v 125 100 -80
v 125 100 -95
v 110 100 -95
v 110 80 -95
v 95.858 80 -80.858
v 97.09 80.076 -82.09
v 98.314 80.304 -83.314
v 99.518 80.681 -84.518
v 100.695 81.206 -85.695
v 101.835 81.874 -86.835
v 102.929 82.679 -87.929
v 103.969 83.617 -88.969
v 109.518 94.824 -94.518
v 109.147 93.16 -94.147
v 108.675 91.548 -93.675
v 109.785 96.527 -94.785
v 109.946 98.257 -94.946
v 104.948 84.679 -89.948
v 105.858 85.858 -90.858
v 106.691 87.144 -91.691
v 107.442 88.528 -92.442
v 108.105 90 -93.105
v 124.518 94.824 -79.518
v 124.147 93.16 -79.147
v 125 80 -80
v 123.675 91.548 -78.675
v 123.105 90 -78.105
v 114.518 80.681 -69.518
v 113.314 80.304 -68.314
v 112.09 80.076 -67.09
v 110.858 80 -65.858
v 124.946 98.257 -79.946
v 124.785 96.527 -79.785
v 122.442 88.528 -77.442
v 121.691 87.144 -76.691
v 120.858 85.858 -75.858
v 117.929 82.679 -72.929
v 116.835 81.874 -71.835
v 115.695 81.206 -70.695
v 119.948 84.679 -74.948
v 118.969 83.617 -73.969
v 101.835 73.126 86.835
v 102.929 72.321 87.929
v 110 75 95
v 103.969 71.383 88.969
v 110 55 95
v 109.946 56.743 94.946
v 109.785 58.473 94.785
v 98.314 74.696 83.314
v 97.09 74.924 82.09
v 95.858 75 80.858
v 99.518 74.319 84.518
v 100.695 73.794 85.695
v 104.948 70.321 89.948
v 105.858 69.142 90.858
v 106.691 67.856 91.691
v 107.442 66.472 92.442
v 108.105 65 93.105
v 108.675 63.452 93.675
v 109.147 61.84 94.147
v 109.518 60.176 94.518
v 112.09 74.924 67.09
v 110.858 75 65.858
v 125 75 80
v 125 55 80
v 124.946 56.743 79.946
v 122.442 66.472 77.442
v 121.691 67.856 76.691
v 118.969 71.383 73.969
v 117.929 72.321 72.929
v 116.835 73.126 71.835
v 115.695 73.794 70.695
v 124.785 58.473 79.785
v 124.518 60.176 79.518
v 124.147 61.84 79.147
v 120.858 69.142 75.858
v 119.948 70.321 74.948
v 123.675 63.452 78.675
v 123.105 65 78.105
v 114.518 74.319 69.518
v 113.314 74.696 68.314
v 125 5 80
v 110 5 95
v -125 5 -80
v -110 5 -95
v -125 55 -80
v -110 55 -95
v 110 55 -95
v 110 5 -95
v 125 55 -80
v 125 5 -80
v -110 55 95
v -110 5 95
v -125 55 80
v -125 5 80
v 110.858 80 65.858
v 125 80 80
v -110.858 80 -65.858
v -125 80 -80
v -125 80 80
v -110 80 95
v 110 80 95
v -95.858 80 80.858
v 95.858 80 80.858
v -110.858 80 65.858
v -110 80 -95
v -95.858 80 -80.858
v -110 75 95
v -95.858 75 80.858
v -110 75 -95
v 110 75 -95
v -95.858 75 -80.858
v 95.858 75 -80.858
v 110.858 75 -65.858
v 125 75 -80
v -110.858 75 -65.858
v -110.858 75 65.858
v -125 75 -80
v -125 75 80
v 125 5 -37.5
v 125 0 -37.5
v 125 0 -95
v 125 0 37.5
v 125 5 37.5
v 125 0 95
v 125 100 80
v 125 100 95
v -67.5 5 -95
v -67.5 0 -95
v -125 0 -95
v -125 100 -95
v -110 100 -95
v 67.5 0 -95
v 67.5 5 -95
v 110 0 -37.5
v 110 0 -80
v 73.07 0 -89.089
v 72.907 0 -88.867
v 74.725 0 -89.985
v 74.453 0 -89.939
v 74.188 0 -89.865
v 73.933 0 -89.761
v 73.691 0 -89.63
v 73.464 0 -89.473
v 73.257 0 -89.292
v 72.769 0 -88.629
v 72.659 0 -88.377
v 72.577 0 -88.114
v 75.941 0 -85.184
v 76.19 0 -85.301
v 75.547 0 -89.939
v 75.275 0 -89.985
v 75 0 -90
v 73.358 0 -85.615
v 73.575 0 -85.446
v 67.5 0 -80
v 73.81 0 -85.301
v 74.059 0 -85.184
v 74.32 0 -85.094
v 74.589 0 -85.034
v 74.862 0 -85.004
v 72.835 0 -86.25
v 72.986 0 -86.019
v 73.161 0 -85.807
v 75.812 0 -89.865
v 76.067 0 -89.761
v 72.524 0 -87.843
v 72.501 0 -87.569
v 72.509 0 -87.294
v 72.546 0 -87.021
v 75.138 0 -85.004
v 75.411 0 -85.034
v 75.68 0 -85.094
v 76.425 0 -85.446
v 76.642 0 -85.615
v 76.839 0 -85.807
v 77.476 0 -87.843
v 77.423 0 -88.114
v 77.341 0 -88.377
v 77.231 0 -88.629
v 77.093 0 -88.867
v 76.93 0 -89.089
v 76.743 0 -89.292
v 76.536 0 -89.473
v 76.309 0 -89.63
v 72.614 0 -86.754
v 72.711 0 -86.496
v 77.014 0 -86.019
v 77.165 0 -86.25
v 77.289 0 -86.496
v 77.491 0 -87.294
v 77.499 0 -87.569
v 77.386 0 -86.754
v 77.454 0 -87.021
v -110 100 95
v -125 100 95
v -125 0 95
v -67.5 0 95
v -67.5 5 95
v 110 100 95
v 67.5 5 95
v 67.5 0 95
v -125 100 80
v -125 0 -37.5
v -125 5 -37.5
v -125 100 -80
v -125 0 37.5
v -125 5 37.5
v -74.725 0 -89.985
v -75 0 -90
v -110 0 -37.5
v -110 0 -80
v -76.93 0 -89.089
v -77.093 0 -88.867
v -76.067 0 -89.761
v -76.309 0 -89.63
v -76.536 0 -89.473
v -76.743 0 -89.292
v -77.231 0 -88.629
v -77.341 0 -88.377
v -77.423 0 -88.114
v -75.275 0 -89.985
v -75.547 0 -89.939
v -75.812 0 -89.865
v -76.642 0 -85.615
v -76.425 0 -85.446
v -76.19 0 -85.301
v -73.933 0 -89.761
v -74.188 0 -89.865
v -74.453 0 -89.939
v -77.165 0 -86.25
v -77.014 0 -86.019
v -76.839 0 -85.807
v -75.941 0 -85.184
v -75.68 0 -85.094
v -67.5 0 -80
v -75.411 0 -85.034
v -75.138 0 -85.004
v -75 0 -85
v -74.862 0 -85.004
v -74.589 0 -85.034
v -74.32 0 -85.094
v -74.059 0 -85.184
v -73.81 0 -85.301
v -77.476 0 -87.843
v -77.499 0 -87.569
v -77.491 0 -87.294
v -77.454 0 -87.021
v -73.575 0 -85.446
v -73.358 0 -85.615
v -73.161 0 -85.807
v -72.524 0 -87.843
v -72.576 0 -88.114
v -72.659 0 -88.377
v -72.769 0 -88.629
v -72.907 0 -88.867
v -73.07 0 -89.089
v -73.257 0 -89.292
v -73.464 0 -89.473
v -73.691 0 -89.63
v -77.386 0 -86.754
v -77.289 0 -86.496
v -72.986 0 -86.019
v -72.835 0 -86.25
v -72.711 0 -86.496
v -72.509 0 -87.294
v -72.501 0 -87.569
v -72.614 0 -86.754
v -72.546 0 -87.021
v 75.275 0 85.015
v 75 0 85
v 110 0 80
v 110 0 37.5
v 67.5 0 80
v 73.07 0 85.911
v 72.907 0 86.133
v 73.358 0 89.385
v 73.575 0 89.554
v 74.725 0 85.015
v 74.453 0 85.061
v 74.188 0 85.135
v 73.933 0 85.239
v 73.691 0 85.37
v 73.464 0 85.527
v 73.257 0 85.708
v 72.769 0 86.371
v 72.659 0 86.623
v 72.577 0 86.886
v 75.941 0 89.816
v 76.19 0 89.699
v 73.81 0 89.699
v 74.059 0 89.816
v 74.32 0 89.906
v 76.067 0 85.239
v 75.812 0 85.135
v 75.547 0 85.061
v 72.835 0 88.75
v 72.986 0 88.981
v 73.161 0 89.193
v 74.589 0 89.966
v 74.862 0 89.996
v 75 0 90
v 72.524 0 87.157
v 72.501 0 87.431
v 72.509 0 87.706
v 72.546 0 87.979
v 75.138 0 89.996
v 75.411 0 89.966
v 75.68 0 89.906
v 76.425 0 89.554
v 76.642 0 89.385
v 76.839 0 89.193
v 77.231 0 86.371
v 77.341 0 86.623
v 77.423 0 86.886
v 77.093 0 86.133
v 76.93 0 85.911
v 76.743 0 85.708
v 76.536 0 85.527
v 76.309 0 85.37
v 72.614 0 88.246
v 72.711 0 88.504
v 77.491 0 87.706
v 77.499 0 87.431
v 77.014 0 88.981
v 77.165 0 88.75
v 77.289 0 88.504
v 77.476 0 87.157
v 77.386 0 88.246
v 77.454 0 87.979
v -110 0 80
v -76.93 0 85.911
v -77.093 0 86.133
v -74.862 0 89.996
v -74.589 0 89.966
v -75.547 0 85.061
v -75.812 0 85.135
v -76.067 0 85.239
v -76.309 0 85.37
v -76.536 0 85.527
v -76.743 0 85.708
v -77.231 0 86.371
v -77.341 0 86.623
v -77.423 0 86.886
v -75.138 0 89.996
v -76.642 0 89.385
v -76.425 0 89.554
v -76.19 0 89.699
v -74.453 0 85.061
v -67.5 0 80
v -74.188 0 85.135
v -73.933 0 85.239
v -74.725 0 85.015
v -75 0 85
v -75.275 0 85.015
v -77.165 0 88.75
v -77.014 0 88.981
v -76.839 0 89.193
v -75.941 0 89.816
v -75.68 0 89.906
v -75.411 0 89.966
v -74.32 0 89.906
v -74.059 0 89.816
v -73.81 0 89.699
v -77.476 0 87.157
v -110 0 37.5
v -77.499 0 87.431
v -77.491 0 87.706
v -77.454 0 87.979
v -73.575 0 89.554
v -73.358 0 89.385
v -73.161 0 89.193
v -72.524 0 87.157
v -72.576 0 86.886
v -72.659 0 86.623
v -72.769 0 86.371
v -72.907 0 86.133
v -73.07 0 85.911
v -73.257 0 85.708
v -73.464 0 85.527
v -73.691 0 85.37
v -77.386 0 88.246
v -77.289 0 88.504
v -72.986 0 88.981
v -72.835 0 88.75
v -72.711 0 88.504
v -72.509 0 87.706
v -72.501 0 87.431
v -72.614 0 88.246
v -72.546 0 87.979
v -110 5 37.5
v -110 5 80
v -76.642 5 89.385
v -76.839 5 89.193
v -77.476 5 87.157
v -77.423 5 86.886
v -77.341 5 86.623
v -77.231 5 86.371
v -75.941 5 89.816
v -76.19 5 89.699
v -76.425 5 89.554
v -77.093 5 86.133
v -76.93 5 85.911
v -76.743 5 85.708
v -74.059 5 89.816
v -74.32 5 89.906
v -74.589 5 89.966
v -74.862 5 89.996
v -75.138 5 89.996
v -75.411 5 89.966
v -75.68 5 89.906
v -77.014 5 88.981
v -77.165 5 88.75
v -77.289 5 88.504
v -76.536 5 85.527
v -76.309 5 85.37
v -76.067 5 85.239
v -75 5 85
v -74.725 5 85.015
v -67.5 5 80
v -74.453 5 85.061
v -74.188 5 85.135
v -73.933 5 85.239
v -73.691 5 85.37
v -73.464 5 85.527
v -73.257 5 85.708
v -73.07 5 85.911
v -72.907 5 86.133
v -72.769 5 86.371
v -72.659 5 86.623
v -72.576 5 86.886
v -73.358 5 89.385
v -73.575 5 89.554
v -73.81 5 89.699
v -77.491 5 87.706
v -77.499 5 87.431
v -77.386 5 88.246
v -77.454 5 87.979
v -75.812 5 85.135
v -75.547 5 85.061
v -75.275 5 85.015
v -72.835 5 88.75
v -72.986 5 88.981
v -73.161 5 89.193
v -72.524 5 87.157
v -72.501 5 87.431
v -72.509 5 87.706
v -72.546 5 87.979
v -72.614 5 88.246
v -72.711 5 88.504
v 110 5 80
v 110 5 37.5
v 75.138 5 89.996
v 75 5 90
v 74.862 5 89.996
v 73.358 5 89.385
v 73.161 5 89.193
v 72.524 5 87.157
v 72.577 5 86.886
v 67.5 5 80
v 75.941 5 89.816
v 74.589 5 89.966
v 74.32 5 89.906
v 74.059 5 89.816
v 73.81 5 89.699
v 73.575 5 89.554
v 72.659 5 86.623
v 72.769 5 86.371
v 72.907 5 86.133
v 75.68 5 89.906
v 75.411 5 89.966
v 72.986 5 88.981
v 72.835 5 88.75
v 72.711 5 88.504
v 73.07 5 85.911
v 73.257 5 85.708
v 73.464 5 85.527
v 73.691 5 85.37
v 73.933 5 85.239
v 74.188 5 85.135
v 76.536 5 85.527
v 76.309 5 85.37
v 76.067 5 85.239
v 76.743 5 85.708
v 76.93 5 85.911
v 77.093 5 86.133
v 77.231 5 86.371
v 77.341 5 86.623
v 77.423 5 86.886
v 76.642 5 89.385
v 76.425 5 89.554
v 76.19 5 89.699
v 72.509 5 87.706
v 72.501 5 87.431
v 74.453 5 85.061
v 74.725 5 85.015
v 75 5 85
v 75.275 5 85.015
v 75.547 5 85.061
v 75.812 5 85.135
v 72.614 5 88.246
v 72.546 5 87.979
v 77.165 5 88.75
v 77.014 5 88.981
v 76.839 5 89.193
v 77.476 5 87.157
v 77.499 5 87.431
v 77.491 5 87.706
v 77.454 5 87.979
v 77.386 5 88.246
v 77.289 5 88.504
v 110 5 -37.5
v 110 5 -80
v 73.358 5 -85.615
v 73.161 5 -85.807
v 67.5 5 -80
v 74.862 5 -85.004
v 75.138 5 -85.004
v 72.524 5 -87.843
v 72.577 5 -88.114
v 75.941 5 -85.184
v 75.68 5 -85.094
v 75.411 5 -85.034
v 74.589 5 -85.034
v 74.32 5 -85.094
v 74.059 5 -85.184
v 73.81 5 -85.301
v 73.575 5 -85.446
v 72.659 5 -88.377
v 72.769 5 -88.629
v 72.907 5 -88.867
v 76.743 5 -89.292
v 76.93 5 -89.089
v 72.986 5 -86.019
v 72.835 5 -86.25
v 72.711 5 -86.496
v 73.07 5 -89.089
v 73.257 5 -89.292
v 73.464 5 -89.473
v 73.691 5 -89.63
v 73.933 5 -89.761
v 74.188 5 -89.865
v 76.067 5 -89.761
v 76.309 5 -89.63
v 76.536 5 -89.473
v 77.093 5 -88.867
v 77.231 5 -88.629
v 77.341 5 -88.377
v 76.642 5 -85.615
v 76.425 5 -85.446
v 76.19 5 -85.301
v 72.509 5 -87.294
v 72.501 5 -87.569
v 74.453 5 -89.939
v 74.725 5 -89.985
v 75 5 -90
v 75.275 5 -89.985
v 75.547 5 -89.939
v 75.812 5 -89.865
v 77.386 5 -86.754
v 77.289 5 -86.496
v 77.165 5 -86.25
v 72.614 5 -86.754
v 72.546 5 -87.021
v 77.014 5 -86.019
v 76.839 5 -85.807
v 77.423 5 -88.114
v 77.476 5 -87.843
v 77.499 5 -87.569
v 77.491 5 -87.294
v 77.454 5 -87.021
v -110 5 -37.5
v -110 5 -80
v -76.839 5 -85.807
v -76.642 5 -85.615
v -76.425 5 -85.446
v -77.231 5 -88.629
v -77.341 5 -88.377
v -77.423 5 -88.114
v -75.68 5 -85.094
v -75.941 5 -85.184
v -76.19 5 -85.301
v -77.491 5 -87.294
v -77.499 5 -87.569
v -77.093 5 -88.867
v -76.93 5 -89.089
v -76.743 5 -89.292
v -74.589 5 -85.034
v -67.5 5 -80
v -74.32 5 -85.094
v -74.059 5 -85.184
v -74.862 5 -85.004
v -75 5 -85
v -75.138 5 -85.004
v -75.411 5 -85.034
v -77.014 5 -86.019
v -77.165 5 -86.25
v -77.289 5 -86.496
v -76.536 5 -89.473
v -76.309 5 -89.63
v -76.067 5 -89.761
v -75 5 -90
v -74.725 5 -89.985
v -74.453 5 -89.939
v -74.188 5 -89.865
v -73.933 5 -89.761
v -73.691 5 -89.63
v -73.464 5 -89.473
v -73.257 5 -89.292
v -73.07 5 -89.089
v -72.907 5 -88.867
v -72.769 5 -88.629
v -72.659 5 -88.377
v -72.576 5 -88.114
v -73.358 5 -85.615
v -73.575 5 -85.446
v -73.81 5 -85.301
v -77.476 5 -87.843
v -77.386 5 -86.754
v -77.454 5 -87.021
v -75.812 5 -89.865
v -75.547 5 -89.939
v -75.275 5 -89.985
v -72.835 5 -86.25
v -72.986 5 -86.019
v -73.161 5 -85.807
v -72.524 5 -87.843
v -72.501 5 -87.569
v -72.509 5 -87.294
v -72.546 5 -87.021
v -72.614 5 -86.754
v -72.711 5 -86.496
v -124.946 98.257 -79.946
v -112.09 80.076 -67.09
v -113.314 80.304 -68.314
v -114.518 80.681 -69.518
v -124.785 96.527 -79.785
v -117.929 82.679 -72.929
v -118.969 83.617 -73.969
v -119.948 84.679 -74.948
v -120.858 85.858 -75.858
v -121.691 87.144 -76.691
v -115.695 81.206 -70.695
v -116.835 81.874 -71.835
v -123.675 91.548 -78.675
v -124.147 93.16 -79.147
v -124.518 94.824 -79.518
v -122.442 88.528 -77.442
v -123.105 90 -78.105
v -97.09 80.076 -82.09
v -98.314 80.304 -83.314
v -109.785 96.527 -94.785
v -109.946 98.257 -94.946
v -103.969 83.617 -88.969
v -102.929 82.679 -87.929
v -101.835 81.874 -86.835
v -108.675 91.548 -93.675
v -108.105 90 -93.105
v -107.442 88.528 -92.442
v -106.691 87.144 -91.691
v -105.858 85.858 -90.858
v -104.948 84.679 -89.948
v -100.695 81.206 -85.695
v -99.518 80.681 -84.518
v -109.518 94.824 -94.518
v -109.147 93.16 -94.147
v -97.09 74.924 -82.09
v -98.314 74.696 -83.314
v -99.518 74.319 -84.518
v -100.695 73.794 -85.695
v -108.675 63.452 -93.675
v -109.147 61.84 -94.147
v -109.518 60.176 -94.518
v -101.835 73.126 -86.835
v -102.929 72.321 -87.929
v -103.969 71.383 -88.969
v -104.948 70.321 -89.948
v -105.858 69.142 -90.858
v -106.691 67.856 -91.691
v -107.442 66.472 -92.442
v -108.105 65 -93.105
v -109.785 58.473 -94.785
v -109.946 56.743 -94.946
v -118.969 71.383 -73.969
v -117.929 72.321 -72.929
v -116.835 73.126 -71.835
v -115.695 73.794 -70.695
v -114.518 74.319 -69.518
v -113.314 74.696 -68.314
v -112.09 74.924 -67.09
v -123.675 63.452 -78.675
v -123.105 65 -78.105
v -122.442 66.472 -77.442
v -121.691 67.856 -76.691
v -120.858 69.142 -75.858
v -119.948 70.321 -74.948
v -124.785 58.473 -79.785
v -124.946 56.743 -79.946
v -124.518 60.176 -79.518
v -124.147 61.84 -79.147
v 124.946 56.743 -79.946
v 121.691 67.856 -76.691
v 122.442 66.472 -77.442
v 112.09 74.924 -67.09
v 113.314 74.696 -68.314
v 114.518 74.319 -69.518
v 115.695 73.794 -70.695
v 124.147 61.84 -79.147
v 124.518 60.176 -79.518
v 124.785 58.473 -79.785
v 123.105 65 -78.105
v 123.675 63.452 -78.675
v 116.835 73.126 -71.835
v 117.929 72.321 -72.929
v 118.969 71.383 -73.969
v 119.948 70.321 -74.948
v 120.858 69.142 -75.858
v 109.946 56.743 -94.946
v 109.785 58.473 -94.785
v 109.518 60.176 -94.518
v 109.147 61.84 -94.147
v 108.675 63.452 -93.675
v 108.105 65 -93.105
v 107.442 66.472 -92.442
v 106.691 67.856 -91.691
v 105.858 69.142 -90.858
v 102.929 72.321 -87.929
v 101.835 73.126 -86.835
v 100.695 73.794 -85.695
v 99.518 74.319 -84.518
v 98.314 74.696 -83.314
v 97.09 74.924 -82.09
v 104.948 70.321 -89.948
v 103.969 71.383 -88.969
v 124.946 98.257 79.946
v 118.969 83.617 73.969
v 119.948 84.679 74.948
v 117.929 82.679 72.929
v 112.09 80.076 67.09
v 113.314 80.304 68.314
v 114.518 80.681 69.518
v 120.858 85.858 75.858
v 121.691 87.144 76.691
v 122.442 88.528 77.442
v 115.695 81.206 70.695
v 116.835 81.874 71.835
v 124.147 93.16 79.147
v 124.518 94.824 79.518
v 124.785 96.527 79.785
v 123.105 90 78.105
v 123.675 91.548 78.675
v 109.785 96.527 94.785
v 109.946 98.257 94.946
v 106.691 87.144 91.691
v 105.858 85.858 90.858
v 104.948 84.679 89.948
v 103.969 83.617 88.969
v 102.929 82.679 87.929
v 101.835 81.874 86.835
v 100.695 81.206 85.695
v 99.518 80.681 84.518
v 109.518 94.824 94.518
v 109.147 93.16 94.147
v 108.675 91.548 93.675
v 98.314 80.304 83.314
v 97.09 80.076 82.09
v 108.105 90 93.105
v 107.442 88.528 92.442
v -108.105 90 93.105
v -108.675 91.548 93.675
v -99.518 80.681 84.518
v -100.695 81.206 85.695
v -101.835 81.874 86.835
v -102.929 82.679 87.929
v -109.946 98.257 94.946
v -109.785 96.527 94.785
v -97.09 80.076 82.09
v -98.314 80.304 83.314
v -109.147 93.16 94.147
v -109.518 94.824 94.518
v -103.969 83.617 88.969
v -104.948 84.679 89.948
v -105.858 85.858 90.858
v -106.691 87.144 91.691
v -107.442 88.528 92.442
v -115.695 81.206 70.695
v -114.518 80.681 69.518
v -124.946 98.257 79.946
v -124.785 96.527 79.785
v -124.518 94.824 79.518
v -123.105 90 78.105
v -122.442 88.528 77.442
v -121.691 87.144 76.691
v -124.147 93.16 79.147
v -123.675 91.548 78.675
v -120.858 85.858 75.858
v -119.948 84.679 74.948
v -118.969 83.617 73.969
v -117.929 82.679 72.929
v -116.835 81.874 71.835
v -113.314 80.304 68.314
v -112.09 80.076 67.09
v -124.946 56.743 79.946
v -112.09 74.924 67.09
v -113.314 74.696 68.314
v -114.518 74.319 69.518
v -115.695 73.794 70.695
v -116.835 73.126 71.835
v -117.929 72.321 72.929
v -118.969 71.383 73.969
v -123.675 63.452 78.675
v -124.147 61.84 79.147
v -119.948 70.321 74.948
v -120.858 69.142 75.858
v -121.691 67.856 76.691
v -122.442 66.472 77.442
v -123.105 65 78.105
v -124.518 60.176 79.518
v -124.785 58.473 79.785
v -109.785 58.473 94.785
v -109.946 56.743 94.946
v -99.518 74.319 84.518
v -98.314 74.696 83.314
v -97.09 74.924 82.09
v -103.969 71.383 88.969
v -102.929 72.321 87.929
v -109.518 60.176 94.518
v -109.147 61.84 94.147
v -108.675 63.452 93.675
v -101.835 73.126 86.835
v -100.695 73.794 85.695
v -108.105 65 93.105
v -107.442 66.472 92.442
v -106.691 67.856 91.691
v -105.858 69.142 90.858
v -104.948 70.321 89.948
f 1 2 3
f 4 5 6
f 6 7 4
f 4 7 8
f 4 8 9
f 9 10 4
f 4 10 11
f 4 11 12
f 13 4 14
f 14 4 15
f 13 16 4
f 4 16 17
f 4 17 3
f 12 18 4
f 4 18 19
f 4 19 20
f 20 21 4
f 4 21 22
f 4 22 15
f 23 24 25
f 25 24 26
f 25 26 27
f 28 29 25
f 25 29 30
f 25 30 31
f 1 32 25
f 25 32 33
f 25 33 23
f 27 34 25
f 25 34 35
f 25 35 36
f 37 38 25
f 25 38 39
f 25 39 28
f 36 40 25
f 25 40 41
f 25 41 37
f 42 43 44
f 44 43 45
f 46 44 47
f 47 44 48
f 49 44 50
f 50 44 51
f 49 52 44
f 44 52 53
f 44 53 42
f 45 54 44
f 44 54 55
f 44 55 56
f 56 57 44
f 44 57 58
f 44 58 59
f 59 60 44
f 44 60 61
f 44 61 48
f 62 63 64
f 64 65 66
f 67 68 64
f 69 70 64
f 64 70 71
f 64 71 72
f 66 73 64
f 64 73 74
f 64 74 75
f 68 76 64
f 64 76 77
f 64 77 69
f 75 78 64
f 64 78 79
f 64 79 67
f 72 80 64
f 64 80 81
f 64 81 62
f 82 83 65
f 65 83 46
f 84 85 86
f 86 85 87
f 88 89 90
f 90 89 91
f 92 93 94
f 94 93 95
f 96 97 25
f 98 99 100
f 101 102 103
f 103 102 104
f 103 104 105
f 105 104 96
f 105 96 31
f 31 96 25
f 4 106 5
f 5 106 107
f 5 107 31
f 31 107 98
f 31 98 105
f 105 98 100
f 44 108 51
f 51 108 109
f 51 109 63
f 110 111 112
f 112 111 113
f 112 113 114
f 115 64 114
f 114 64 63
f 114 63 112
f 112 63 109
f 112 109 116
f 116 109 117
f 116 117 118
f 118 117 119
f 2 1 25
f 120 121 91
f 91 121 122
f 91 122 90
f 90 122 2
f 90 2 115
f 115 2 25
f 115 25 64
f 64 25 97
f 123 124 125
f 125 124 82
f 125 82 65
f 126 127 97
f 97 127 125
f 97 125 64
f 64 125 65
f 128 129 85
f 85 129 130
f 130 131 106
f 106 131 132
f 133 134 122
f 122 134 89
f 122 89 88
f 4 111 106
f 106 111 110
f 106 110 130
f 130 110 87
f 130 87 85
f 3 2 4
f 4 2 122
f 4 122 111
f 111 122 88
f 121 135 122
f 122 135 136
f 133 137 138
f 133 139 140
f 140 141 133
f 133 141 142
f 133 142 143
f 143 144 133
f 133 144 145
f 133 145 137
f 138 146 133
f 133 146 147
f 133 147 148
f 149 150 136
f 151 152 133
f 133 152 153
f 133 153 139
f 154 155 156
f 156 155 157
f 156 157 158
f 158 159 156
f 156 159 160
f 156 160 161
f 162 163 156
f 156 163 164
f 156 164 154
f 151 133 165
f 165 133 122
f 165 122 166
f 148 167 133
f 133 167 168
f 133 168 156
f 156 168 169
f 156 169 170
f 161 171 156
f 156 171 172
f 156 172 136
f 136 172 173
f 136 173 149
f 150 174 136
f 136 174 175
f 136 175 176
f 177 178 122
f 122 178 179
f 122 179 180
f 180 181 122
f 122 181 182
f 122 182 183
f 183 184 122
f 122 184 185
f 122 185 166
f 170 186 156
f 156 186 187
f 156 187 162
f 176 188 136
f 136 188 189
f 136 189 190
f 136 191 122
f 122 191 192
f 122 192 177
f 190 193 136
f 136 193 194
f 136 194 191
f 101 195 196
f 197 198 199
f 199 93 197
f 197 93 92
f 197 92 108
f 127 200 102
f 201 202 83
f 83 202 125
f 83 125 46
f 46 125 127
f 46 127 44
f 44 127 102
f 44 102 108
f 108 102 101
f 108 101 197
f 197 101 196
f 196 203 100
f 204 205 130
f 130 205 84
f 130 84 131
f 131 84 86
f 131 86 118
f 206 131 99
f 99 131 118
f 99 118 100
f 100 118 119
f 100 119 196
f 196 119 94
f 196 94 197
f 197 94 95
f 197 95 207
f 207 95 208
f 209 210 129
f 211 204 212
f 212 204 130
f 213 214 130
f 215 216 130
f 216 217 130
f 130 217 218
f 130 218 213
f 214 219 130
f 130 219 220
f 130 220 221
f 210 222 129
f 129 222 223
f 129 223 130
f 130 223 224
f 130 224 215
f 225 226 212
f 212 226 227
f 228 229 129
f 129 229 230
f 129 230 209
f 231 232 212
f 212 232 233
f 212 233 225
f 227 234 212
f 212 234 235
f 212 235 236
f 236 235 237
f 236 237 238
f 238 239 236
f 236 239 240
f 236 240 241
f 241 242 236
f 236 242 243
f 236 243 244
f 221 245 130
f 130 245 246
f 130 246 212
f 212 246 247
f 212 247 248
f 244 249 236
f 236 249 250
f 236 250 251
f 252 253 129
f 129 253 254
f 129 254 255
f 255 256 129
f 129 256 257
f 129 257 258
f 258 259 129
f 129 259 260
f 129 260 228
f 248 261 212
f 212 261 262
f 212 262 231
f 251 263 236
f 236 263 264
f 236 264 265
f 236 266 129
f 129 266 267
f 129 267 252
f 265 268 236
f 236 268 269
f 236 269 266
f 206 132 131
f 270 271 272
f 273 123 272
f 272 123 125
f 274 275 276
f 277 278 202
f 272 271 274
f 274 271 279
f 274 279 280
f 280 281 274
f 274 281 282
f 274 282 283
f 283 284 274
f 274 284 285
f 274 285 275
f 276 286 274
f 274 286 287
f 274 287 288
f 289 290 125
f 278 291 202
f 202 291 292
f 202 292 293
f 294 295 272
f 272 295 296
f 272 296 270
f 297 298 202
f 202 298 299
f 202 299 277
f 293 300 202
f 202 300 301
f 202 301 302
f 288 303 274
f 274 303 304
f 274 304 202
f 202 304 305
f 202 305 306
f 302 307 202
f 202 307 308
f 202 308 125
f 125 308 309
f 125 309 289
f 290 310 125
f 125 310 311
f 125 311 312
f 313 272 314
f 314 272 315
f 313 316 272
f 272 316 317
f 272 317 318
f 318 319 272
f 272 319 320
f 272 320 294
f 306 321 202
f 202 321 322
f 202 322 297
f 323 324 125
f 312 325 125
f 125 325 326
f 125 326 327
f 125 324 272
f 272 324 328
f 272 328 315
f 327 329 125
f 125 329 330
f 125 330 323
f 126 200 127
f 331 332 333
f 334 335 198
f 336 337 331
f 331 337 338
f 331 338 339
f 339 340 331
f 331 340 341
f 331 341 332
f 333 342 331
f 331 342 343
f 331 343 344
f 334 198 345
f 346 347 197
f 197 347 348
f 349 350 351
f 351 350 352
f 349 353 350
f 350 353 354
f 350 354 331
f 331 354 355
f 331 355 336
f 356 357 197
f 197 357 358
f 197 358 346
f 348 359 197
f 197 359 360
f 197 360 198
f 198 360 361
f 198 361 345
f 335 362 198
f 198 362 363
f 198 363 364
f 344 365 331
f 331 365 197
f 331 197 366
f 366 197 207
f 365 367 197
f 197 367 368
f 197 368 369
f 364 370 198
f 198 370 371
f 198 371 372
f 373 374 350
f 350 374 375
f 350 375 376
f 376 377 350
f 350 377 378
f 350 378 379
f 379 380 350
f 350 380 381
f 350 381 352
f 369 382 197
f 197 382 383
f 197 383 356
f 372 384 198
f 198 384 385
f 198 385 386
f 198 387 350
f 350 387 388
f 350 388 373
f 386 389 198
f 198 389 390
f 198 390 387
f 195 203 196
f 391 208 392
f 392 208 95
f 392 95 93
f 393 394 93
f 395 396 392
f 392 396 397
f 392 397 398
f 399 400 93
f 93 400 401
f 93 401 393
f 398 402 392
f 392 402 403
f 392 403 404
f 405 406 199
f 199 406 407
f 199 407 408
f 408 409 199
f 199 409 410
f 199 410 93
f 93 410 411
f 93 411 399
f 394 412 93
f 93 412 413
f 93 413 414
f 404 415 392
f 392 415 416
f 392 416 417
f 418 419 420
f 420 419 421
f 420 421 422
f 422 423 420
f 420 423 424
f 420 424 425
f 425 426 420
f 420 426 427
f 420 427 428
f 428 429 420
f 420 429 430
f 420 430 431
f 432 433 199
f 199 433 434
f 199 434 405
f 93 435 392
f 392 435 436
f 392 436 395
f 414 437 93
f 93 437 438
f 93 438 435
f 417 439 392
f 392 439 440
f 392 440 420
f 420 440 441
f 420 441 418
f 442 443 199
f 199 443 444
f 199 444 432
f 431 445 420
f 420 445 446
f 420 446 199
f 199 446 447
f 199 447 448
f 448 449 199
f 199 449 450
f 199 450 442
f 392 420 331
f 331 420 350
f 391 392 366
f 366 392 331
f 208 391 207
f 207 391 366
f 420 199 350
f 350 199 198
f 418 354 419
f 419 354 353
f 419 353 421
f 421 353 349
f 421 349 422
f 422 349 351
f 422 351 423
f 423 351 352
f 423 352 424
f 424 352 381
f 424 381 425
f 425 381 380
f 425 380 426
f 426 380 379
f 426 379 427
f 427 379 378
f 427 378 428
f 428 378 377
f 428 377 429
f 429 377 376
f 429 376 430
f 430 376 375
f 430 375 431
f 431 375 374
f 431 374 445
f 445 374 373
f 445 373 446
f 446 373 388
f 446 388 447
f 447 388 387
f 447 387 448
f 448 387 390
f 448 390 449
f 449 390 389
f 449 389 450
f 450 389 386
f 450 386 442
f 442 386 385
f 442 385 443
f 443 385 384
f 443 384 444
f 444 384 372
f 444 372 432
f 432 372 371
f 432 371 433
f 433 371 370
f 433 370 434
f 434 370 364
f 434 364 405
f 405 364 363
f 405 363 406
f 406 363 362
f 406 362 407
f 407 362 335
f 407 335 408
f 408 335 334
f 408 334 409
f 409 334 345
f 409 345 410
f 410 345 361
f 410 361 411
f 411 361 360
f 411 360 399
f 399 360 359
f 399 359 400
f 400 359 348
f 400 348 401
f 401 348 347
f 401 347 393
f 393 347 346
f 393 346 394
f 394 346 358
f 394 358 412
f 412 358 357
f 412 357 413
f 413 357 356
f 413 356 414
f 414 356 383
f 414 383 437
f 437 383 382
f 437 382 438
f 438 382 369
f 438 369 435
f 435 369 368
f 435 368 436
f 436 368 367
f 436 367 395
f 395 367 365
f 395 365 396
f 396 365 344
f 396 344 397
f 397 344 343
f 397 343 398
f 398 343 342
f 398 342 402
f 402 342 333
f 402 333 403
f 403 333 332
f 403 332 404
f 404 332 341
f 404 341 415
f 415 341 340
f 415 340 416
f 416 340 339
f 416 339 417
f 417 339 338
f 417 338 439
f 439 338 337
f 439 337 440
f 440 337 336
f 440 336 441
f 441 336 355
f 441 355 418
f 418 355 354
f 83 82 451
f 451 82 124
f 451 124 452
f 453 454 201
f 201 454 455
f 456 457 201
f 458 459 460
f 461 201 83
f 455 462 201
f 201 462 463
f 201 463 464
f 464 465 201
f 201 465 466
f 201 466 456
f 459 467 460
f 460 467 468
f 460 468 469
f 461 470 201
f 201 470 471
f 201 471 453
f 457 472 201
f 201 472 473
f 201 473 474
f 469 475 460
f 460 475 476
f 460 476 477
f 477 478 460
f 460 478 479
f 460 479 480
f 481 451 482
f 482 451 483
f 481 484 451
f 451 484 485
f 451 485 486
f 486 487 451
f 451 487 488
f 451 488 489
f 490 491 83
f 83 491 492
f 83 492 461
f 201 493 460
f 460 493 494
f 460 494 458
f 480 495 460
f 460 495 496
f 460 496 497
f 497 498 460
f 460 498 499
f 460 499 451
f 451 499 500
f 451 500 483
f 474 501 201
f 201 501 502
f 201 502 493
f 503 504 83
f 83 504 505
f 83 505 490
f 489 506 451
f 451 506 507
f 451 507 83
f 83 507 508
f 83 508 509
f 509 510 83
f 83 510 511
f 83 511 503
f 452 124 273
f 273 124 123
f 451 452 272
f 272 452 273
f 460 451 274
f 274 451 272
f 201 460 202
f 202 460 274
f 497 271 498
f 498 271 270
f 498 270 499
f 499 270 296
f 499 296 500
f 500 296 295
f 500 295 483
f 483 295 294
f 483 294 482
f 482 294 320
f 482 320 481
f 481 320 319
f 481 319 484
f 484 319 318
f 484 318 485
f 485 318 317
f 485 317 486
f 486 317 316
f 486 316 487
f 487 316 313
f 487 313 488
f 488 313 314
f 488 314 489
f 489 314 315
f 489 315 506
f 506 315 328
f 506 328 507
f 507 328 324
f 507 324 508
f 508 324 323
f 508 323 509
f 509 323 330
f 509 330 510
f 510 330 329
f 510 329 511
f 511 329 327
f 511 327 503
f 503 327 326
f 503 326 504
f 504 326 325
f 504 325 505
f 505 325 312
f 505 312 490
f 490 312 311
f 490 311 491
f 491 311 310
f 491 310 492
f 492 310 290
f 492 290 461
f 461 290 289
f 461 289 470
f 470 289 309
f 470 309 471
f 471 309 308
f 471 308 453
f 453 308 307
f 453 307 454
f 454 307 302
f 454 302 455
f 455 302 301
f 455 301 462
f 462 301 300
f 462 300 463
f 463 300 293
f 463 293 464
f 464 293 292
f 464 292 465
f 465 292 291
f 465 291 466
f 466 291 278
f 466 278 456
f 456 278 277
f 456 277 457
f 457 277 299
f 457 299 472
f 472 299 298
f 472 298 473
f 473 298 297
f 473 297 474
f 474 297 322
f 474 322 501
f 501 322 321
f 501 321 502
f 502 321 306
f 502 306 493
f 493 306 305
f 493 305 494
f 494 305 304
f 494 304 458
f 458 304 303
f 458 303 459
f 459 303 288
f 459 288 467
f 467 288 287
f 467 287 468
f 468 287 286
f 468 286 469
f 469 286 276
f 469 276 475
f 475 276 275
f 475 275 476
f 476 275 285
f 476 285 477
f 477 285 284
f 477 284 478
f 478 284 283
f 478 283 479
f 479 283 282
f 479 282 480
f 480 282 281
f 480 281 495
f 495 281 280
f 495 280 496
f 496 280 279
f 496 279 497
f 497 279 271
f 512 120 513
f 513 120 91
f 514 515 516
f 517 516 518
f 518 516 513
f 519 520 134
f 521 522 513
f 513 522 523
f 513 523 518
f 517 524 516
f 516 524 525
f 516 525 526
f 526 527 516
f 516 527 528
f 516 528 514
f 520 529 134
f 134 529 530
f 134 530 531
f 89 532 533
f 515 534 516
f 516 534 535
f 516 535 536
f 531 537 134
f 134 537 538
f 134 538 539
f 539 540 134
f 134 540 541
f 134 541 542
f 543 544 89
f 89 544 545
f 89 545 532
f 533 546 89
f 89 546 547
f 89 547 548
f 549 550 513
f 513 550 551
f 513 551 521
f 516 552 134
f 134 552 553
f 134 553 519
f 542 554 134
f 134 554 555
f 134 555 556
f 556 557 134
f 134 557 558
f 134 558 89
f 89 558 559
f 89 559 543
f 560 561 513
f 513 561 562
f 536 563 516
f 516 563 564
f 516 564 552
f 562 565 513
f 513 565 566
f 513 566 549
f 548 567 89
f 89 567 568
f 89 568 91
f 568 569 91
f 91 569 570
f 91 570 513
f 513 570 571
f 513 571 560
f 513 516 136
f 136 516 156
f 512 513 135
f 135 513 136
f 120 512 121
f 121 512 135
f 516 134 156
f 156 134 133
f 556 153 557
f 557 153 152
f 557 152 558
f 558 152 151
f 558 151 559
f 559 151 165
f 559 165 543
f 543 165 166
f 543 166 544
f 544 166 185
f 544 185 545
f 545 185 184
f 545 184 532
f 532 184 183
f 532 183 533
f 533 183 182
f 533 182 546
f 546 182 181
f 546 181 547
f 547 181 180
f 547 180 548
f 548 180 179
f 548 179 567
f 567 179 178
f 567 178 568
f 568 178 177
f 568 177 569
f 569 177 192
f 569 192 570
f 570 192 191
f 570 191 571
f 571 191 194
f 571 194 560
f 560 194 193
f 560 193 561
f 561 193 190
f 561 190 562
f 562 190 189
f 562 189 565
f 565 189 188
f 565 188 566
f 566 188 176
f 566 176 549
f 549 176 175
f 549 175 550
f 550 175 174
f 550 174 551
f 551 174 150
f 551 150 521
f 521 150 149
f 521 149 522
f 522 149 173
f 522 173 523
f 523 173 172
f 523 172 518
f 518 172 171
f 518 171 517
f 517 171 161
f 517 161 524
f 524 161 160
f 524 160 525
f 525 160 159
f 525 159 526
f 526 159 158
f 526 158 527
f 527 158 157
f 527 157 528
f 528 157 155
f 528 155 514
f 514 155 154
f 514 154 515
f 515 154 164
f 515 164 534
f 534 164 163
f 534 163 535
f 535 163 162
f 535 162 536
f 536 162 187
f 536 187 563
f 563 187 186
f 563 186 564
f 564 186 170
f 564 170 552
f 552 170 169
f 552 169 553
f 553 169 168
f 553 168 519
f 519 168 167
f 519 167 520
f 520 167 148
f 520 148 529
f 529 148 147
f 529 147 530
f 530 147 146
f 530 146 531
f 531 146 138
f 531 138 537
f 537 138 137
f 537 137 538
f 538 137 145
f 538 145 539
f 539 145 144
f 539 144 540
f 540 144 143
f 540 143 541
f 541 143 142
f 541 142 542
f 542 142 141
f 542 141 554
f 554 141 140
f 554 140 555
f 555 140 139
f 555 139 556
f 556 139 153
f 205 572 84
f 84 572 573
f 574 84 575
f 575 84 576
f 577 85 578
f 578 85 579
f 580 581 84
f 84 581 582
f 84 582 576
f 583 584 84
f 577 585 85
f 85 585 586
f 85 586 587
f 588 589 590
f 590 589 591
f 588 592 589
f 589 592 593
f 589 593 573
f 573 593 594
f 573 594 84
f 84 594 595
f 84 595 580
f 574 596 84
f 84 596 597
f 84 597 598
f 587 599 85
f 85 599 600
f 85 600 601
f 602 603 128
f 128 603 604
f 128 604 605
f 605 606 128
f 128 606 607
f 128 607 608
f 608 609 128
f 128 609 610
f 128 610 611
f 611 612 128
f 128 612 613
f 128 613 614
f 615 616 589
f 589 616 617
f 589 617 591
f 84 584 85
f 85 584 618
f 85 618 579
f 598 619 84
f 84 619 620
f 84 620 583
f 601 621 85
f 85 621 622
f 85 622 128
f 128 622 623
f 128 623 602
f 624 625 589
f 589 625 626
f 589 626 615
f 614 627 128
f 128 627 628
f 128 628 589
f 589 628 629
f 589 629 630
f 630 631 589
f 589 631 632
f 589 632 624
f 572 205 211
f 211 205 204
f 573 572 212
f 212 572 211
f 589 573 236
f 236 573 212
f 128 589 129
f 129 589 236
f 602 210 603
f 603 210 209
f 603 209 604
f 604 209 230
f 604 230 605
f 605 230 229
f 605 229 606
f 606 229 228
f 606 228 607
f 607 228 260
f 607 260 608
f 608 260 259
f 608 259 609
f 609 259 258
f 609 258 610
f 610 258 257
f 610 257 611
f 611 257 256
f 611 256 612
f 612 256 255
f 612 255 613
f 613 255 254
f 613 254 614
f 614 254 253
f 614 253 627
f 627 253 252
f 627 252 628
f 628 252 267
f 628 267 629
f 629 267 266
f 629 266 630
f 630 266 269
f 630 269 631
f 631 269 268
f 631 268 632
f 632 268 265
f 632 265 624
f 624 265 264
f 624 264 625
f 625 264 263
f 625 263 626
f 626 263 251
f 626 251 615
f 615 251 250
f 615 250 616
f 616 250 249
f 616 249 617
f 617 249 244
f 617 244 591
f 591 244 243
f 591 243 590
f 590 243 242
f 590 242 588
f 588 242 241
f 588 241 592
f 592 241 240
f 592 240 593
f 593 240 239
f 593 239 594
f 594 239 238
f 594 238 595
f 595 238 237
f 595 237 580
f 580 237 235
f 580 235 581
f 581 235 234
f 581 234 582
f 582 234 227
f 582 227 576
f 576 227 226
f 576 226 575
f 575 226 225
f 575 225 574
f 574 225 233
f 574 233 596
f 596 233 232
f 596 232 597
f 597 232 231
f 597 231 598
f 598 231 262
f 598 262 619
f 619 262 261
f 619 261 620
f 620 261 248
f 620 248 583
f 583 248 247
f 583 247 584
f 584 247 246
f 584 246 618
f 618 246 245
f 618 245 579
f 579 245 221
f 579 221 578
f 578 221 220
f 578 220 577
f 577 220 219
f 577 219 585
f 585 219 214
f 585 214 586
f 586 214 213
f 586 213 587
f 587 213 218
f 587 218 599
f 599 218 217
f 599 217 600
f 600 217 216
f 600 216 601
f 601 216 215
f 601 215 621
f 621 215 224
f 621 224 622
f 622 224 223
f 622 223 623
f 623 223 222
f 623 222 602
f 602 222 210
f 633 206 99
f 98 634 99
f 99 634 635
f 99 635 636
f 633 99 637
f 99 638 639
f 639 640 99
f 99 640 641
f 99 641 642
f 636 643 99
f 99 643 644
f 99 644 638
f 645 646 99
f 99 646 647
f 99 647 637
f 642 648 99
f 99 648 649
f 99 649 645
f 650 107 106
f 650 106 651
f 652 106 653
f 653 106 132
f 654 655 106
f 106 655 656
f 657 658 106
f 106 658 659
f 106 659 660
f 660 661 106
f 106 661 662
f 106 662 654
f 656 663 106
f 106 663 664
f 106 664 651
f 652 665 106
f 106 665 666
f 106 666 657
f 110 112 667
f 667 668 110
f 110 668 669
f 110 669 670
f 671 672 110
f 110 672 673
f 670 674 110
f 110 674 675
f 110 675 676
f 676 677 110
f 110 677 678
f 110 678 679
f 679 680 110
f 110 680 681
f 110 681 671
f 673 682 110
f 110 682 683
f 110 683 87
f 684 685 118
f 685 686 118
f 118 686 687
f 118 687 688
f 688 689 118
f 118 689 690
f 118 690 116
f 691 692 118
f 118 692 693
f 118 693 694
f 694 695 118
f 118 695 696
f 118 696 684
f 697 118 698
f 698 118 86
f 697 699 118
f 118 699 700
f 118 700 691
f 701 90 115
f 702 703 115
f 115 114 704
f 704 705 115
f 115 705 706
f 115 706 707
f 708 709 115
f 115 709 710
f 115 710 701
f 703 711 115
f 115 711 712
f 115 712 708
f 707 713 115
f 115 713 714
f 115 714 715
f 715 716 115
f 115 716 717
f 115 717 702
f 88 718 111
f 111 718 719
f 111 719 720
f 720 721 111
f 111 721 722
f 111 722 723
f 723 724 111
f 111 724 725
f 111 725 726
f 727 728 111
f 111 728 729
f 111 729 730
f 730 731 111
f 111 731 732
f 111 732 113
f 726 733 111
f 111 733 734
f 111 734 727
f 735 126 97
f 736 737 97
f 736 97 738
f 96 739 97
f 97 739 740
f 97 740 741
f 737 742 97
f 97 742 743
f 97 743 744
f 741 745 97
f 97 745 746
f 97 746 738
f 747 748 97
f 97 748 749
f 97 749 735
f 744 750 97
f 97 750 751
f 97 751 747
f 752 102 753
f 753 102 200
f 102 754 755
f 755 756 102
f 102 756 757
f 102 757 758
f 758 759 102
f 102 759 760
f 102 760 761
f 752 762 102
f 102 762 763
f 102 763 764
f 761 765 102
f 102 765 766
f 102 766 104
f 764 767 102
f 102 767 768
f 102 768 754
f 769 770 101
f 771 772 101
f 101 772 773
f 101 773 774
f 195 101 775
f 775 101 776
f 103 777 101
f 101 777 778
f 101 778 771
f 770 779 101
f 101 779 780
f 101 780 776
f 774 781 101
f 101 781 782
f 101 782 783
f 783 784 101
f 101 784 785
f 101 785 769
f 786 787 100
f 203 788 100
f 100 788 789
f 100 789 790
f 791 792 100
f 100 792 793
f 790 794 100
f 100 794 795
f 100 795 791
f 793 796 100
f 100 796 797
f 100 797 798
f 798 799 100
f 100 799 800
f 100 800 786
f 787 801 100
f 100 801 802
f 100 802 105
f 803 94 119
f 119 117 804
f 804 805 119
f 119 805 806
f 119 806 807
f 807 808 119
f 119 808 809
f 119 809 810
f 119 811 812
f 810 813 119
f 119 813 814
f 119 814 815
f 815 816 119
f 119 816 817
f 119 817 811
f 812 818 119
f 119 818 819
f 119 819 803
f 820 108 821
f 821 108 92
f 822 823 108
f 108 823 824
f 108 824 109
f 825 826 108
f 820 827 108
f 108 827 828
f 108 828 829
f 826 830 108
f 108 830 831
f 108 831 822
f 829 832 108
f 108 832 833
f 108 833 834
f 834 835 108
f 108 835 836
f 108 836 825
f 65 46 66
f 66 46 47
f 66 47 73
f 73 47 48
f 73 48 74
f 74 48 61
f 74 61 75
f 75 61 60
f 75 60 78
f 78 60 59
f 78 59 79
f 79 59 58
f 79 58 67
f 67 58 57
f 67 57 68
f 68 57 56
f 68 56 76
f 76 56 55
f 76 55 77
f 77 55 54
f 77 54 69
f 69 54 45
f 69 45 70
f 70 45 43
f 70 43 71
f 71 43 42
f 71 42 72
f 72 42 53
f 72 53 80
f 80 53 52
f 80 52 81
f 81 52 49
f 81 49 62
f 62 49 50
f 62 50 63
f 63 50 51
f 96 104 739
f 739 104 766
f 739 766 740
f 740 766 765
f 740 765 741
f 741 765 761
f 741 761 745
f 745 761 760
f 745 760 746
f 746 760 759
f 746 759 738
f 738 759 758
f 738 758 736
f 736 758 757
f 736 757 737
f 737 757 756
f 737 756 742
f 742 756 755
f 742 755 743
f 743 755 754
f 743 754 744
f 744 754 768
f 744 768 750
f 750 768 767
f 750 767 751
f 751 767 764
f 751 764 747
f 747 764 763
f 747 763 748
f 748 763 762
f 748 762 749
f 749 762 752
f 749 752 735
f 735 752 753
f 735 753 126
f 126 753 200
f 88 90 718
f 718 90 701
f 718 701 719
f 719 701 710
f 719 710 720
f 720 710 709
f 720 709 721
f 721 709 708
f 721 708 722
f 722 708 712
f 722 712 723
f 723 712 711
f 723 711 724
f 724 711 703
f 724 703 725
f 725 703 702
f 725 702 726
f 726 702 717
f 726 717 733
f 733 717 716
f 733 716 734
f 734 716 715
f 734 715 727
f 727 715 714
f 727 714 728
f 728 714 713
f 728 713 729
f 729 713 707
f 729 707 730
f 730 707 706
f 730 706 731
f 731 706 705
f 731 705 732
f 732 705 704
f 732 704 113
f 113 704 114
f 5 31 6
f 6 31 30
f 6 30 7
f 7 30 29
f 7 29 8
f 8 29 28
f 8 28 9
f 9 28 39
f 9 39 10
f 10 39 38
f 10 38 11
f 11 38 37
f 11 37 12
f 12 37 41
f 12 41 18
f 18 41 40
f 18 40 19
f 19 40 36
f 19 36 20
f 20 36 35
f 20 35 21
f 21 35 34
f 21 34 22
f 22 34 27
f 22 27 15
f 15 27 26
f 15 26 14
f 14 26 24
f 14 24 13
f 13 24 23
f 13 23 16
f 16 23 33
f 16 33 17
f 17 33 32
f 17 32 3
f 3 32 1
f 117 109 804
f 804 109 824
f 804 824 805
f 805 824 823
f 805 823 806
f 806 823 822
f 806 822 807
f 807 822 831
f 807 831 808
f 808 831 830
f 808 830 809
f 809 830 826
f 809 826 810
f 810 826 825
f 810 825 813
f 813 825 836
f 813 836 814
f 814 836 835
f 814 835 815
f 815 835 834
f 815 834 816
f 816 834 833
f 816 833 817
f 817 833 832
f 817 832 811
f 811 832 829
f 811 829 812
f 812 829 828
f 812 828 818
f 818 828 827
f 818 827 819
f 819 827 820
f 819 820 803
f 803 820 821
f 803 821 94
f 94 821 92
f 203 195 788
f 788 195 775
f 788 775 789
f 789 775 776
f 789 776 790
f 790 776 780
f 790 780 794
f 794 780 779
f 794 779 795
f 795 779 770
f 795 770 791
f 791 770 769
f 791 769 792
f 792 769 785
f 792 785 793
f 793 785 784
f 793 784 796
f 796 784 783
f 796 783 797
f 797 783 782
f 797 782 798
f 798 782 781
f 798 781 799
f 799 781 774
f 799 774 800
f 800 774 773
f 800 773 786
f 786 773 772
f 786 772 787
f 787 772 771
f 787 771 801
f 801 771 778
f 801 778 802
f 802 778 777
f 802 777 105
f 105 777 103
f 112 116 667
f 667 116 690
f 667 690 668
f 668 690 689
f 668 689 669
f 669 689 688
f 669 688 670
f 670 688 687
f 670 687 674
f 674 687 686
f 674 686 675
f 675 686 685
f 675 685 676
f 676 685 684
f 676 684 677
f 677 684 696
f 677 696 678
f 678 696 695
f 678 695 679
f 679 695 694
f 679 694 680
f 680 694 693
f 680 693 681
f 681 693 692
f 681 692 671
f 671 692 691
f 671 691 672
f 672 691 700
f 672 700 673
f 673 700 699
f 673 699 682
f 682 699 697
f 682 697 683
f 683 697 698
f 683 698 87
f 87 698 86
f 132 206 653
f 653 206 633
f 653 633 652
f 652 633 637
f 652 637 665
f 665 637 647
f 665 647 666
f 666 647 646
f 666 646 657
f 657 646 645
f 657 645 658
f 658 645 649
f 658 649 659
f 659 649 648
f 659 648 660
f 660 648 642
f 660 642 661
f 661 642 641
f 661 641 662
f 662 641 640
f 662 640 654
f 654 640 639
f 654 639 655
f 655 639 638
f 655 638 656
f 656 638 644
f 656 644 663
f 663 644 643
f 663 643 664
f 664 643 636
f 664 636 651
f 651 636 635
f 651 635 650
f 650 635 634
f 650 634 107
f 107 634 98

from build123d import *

# Parameters (mm, degrees)
BOSS_EXTRUDE1_DEPTH   = 100
BOSS_EXTRUDE1_2_DEPTH = 100
BOSS_EXTRUDE1_3_DEPTH = 100
BOSS_EXTRUDE1_4_DEPTH = 100
SKETCH3_W             = 190
SKETCH3_H             = 5
BOSS_EXTRUDE3_DEPTH   = 250
SKETCH5_R             = 2.5
BOSS_EXTRUDE6_DEPTH   = 5
BOSS_EXTRUDE7_DEPTH   = 45
CUT_EXTRUDE2_REACH    = 197.096
CUT_EXTRUDE3_REACH    = 215.454
CUT_EXTRUDE4_REACH    = 197.096
CUT_EXTRUDE5_REACH    = 215.454


with BuildPart() as part:
    # Sketch1 → Boss-Extrude1 (new body)
    with BuildSketch(Plane(origin=(0, 0, 0), x_dir=(1, 0, 0), z_dir=(0, 1, 0))):
        Polygon((-125, 95), (-125, 80), (-110, 95), align=None)
    extrude(amount=BOSS_EXTRUDE1_DEPTH)



with BuildPart() as body_2:
    # Sketch1 → Boss-Extrude1 2 (new body)
    with BuildSketch(Plane(origin=(0, 0, 0), x_dir=(1, 0, 0), z_dir=(0, 1, 0))):
        Polygon((125, 95), (110, 95), (125, 80), align=None)
    extrude(amount=BOSS_EXTRUDE1_2_DEPTH)


with BuildPart() as body_3:
    # Sketch1 → Boss-Extrude1 3 (new body)
    with BuildSketch(Plane(origin=(0, 0, 0), x_dir=(1, 0, 0), z_dir=(0, 1, 0))):
        Polygon((125, -95), (125, -80), (110, -95), align=None)
    extrude(amount=BOSS_EXTRUDE1_3_DEPTH)


with BuildPart() as body_4:
    # Sketch1 → Boss-Extrude1 4 (new body)
    with BuildSketch(Plane(origin=(0, 0, 0), x_dir=(1, 0, 0), z_dir=(0, 1, 0))):
        Polygon((-125, -95), (-110, -95), (-125, -80), align=None)
    extrude(amount=BOSS_EXTRUDE1_4_DEPTH)


with BuildPart() as part_1:
    add(part.part)

    add(body_2.part)  # Boss-Extrude3 merges body 2

    add(body_3.part)  # Boss-Extrude3 merges body 3

    add(body_4.part)  # Boss-Extrude3 merges body 4
    # Sketch3 → Boss-Extrude3 (add, through all)
    with BuildSketch(Plane(origin=(125, 0, 0), x_dir=(0, 0, -1), z_dir=(1, 0, 0))):
        with Locations((0, 77.5)):
            Rectangle(SKETCH3_W, SKETCH3_H)
    extrude(amount=-BOSS_EXTRUDE3_DEPTH)

    # Sketch5 → Boss-Extrude6 (add)
    # profile 1 of 4: a face of its own
    with BuildSketch(Plane.XZ):
        Polygon((-110, 80), (-110, 37.5), (-125, 37.5), (-125, 95), (-67.5, 95), (-67.5, 80), align=None)
        with Locations(Location((-75, 87.5, 0), (0, 0, 270))):
            Circle(SKETCH5_R, mode=Mode.SUBTRACT)
    # profile 2 of 4: a face of its own
    with BuildSketch(Plane.XZ):
        Polygon((125, 95), (67.5, 95), (67.5, 80), (110, 80), (110, 37.5), (125, 37.5), align=None)
        with Locations(Location((75, 87.5, 0), (0, 0, 90))):
            Circle(SKETCH5_R, mode=Mode.SUBTRACT)
    # profile 3 of 4: a face of its own
    with BuildSketch(Plane.XZ):
        Polygon((110, -80), (110, -37.5), (125, -37.5), (125, -95), (67.5, -95), (67.5, -80), align=None)
        with Locations(Location((75, -87.5, 0), (0, 0, 270))):
            Circle(SKETCH5_R, mode=Mode.SUBTRACT)
    # profile 4 of 4: a face of its own
    with BuildSketch(Plane.XZ):
        Polygon((-125, -95), (-67.5, -95), (-67.5, -80), (-110, -80), (-110, -37.5), (-125, -37.5), align=None)
        with Locations(Location((-75, -87.5, 0), (0, 0, 90))):
            Circle(SKETCH5_R, mode=Mode.SUBTRACT)
    extrude(amount=-BOSS_EXTRUDE6_DEPTH)

    # Sketch9 → Boss-Extrude7 (add)
    with BuildSketch(Plane(origin=(0, 100, 0), x_dir=(1, 0, 0), z_dir=(0, 1, 0))):
        Polygon((-110, 95), (-125, 80), (-110.857864376, 65.857864376), (-95.857864376, 80.857864376), align=None)
        Polygon((110, 95), (95.857864376, 80.857864376), (110.857864376, 65.857864376), (125, 80), align=None)
        Polygon((110, -95), (125, -80), (110.857864376, -65.857864376), (95.857864376, -80.857864376), align=None)
        Polygon((-110, -95), (-95.857864376, -80.857864376), (-110.857864376, -65.857864376), (-125, -80), align=None)
    extrude(amount=-BOSS_EXTRUDE7_DEPTH)

    # Sketch11 → Cut-Extrude2 (cut, up to next)
    with BuildSketch(Plane(origin=(7.5, 0, -7.5), x_dir=(0.7071067811865489, 0, 0.7071067811865461), z_dir=(-0.7071067811865461, 0, 0.7071067811865489)), mode=Mode.PRIVATE) as cut_extrude2_sk1:
        with BuildLine():
            Line((124.956890143, 80), (124.956890143, 100))
            Line((124.956890143, 100), (144.956890143, 100))
            ThreePointArc((144.956890143, 100), (139.099025767, 85.857864376), (124.956890143, 80))
        make_face()
    cut_extrude2_tool1 = extrude(cut_extrude2_sk1.sketch, amount=-CUT_EXTRUDE2_REACH, mode=Mode.PRIVATE) & part_1.part
    # Sketch11 → Cut-Extrude2 (cut, up to next)
    with BuildSketch(Plane(origin=(7.5, 0, -7.5), x_dir=(0.7071067811865489, 0, 0.7071067811865461), z_dir=(-0.7071067811865461, 0, 0.7071067811865489)), mode=Mode.PRIVATE) as cut_extrude2_sk2:
        with BuildLine():
            Line((124.956890143, 75), (124.956890143, 55))
            Line((124.956890143, 55), (144.956890143, 55))
            ThreePointArc((144.956890143, 55), (139.099025767, 69.142135624), (124.956890143, 75))
        make_face()
    cut_extrude2_tool2 = extrude(cut_extrude2_sk2.sketch, amount=-CUT_EXTRUDE2_REACH, mode=Mode.PRIVATE) & part_1.part
    add(cut_extrude2_tool1.solids().sort_by_distance((101.859973, 91.511736, 86.859973))[0], mode=Mode.SUBTRACT)
    add(cut_extrude2_tool2.solids().sort_by_distance((101.859973, 63.488264, 86.859973))[0], mode=Mode.SUBTRACT)

    # Sketch12 → Cut-Extrude3 (cut, up to next)
    with BuildSketch(Plane(origin=(22.5, 0, 22.5), x_dir=(0.7071067811865471, 0, -0.7071067811865479), z_dir=(0.7071067811865479, 0, 0.7071067811865471)), mode=Mode.PRIVATE) as cut_extrude3_sk1:
        with BuildLine():
            Line((144.956890143, 100), (124.956890143, 100))
            Line((124.956890143, 100), (124.956890143, 80))
            ThreePointArc((124.956890143, 80), (139.099025767, 85.857864376), (144.956890143, 100))
        make_face()
    cut_extrude3_tool1 = extrude(cut_extrude3_sk1.sketch, amount=-CUT_EXTRUDE3_REACH, mode=Mode.PRIVATE) & part_1.part
    # Sketch12 → Cut-Extrude3 (cut, up to next)
    with BuildSketch(Plane(origin=(22.5, 0, 22.5), x_dir=(0.7071067811865471, 0, -0.7071067811865479), z_dir=(0.7071067811865479, 0, 0.7071067811865471)), mode=Mode.PRIVATE) as cut_extrude3_sk2:
        with BuildLine():
            Line((144.956890143, 55), (124.956890143, 55))
            Line((124.956890143, 55), (124.956890143, 75))
            ThreePointArc((124.956890143, 75), (139.099025767, 69.142135624), (144.956890143, 55))
        make_face()
    cut_extrude3_tool2 = extrude(cut_extrude3_sk2.sketch, amount=-CUT_EXTRUDE3_REACH, mode=Mode.PRIVATE) & part_1.part
    add(cut_extrude3_tool1.solids().sort_by_distance((116.859973, 91.511736, -71.859973))[0], mode=Mode.SUBTRACT)
    add(cut_extrude3_tool2.solids().sort_by_distance((116.859973, 63.488264, -71.859973))[0], mode=Mode.SUBTRACT)

    # Sketch13 → Cut-Extrude4 (cut, up to next)
    with BuildSketch(Plane(origin=(-7.5, 0, -7.5), x_dir=(0.7071067811865482, 0, -0.7071067811865468), z_dir=(0.7071067811865468, 0, 0.7071067811865482)), mode=Mode.PRIVATE) as cut_extrude4_sk1:
        with BuildLine():
            Line((-144.956890143, 100), (-124.956890143, 100))
            Line((-124.956890143, 100), (-124.956890143, 80))
            ThreePointArc((-124.956890143, 80), (-139.099025767, 85.857864376), (-144.956890143, 100))
        make_face()
    cut_extrude4_tool1 = extrude(cut_extrude4_sk1.sketch, amount=-CUT_EXTRUDE4_REACH, mode=Mode.PRIVATE) & part_1.part
    # Sketch13 → Cut-Extrude4 (cut, up to next)
    with BuildSketch(Plane(origin=(-7.5, 0, -7.5), x_dir=(0.7071067811865482, 0, -0.7071067811865468), z_dir=(0.7071067811865468, 0, 0.7071067811865482)), mode=Mode.PRIVATE) as cut_extrude4_sk2:
        with BuildLine():
            Line((-124.956890143, 75), (-124.956890143, 55))
            Line((-124.956890143, 55), (-144.956890143, 55))
            ThreePointArc((-144.956890143, 55), (-139.099025767, 69.142135624), (-124.956890143, 75))
        make_face()
    cut_extrude4_tool2 = extrude(cut_extrude4_sk2.sketch, amount=-CUT_EXTRUDE4_REACH, mode=Mode.PRIVATE) & part_1.part
    add(cut_extrude4_tool1.solids().sort_by_distance((-101.859973, 91.511736, 86.859973))[0], mode=Mode.SUBTRACT)
    add(cut_extrude4_tool2.solids().sort_by_distance((-101.859973, 63.488264, 86.859973))[0], mode=Mode.SUBTRACT)

    # Sketch14 → Cut-Extrude5 (cut, up to next)
    with BuildSketch(Plane(origin=(-22.5, 0, 22.5), x_dir=(0.7071067811865471, 0, 0.7071067811865479), z_dir=(-0.7071067811865479, 0, 0.7071067811865471)), mode=Mode.PRIVATE) as cut_extrude5_sk1:
        with BuildLine():
            Line((-144.956890143, 100), (-124.956890143, 100))
            Line((-124.956890143, 100), (-124.956890143, 80))
            ThreePointArc((-124.956890143, 80), (-139.099025767, 85.857864376), (-144.956890143, 100))
        make_face()
    cut_extrude5_tool1 = extrude(cut_extrude5_sk1.sketch, amount=-CUT_EXTRUDE5_REACH, mode=Mode.PRIVATE) & part_1.part
    # Sketch14 → Cut-Extrude5 (cut, up to next)
    with BuildSketch(Plane(origin=(-22.5, 0, 22.5), x_dir=(0.7071067811865471, 0, 0.7071067811865479), z_dir=(-0.7071067811865479, 0, 0.7071067811865471)), mode=Mode.PRIVATE) as cut_extrude5_sk2:
        with BuildLine():
            Line((-144.956890143, 55), (-124.956890143, 55))
            Line((-124.956890143, 55), (-124.956890143, 75))
            ThreePointArc((-124.956890143, 75), (-139.099025767, 69.142135624), (-144.956890143, 55))
        make_face()
    cut_extrude5_tool2 = extrude(cut_extrude5_sk2.sketch, amount=-CUT_EXTRUDE5_REACH, mode=Mode.PRIVATE) & part_1.part
    add(cut_extrude5_tool1.solids().sort_by_distance((-116.859973, 91.511736, -71.859973))[0], mode=Mode.SUBTRACT)
    add(cut_extrude5_tool2.solids().sort_by_distance((-116.859973, 63.488264, -71.859973))[0], mode=Mode.SUBTRACT)


solid = part_1.part
